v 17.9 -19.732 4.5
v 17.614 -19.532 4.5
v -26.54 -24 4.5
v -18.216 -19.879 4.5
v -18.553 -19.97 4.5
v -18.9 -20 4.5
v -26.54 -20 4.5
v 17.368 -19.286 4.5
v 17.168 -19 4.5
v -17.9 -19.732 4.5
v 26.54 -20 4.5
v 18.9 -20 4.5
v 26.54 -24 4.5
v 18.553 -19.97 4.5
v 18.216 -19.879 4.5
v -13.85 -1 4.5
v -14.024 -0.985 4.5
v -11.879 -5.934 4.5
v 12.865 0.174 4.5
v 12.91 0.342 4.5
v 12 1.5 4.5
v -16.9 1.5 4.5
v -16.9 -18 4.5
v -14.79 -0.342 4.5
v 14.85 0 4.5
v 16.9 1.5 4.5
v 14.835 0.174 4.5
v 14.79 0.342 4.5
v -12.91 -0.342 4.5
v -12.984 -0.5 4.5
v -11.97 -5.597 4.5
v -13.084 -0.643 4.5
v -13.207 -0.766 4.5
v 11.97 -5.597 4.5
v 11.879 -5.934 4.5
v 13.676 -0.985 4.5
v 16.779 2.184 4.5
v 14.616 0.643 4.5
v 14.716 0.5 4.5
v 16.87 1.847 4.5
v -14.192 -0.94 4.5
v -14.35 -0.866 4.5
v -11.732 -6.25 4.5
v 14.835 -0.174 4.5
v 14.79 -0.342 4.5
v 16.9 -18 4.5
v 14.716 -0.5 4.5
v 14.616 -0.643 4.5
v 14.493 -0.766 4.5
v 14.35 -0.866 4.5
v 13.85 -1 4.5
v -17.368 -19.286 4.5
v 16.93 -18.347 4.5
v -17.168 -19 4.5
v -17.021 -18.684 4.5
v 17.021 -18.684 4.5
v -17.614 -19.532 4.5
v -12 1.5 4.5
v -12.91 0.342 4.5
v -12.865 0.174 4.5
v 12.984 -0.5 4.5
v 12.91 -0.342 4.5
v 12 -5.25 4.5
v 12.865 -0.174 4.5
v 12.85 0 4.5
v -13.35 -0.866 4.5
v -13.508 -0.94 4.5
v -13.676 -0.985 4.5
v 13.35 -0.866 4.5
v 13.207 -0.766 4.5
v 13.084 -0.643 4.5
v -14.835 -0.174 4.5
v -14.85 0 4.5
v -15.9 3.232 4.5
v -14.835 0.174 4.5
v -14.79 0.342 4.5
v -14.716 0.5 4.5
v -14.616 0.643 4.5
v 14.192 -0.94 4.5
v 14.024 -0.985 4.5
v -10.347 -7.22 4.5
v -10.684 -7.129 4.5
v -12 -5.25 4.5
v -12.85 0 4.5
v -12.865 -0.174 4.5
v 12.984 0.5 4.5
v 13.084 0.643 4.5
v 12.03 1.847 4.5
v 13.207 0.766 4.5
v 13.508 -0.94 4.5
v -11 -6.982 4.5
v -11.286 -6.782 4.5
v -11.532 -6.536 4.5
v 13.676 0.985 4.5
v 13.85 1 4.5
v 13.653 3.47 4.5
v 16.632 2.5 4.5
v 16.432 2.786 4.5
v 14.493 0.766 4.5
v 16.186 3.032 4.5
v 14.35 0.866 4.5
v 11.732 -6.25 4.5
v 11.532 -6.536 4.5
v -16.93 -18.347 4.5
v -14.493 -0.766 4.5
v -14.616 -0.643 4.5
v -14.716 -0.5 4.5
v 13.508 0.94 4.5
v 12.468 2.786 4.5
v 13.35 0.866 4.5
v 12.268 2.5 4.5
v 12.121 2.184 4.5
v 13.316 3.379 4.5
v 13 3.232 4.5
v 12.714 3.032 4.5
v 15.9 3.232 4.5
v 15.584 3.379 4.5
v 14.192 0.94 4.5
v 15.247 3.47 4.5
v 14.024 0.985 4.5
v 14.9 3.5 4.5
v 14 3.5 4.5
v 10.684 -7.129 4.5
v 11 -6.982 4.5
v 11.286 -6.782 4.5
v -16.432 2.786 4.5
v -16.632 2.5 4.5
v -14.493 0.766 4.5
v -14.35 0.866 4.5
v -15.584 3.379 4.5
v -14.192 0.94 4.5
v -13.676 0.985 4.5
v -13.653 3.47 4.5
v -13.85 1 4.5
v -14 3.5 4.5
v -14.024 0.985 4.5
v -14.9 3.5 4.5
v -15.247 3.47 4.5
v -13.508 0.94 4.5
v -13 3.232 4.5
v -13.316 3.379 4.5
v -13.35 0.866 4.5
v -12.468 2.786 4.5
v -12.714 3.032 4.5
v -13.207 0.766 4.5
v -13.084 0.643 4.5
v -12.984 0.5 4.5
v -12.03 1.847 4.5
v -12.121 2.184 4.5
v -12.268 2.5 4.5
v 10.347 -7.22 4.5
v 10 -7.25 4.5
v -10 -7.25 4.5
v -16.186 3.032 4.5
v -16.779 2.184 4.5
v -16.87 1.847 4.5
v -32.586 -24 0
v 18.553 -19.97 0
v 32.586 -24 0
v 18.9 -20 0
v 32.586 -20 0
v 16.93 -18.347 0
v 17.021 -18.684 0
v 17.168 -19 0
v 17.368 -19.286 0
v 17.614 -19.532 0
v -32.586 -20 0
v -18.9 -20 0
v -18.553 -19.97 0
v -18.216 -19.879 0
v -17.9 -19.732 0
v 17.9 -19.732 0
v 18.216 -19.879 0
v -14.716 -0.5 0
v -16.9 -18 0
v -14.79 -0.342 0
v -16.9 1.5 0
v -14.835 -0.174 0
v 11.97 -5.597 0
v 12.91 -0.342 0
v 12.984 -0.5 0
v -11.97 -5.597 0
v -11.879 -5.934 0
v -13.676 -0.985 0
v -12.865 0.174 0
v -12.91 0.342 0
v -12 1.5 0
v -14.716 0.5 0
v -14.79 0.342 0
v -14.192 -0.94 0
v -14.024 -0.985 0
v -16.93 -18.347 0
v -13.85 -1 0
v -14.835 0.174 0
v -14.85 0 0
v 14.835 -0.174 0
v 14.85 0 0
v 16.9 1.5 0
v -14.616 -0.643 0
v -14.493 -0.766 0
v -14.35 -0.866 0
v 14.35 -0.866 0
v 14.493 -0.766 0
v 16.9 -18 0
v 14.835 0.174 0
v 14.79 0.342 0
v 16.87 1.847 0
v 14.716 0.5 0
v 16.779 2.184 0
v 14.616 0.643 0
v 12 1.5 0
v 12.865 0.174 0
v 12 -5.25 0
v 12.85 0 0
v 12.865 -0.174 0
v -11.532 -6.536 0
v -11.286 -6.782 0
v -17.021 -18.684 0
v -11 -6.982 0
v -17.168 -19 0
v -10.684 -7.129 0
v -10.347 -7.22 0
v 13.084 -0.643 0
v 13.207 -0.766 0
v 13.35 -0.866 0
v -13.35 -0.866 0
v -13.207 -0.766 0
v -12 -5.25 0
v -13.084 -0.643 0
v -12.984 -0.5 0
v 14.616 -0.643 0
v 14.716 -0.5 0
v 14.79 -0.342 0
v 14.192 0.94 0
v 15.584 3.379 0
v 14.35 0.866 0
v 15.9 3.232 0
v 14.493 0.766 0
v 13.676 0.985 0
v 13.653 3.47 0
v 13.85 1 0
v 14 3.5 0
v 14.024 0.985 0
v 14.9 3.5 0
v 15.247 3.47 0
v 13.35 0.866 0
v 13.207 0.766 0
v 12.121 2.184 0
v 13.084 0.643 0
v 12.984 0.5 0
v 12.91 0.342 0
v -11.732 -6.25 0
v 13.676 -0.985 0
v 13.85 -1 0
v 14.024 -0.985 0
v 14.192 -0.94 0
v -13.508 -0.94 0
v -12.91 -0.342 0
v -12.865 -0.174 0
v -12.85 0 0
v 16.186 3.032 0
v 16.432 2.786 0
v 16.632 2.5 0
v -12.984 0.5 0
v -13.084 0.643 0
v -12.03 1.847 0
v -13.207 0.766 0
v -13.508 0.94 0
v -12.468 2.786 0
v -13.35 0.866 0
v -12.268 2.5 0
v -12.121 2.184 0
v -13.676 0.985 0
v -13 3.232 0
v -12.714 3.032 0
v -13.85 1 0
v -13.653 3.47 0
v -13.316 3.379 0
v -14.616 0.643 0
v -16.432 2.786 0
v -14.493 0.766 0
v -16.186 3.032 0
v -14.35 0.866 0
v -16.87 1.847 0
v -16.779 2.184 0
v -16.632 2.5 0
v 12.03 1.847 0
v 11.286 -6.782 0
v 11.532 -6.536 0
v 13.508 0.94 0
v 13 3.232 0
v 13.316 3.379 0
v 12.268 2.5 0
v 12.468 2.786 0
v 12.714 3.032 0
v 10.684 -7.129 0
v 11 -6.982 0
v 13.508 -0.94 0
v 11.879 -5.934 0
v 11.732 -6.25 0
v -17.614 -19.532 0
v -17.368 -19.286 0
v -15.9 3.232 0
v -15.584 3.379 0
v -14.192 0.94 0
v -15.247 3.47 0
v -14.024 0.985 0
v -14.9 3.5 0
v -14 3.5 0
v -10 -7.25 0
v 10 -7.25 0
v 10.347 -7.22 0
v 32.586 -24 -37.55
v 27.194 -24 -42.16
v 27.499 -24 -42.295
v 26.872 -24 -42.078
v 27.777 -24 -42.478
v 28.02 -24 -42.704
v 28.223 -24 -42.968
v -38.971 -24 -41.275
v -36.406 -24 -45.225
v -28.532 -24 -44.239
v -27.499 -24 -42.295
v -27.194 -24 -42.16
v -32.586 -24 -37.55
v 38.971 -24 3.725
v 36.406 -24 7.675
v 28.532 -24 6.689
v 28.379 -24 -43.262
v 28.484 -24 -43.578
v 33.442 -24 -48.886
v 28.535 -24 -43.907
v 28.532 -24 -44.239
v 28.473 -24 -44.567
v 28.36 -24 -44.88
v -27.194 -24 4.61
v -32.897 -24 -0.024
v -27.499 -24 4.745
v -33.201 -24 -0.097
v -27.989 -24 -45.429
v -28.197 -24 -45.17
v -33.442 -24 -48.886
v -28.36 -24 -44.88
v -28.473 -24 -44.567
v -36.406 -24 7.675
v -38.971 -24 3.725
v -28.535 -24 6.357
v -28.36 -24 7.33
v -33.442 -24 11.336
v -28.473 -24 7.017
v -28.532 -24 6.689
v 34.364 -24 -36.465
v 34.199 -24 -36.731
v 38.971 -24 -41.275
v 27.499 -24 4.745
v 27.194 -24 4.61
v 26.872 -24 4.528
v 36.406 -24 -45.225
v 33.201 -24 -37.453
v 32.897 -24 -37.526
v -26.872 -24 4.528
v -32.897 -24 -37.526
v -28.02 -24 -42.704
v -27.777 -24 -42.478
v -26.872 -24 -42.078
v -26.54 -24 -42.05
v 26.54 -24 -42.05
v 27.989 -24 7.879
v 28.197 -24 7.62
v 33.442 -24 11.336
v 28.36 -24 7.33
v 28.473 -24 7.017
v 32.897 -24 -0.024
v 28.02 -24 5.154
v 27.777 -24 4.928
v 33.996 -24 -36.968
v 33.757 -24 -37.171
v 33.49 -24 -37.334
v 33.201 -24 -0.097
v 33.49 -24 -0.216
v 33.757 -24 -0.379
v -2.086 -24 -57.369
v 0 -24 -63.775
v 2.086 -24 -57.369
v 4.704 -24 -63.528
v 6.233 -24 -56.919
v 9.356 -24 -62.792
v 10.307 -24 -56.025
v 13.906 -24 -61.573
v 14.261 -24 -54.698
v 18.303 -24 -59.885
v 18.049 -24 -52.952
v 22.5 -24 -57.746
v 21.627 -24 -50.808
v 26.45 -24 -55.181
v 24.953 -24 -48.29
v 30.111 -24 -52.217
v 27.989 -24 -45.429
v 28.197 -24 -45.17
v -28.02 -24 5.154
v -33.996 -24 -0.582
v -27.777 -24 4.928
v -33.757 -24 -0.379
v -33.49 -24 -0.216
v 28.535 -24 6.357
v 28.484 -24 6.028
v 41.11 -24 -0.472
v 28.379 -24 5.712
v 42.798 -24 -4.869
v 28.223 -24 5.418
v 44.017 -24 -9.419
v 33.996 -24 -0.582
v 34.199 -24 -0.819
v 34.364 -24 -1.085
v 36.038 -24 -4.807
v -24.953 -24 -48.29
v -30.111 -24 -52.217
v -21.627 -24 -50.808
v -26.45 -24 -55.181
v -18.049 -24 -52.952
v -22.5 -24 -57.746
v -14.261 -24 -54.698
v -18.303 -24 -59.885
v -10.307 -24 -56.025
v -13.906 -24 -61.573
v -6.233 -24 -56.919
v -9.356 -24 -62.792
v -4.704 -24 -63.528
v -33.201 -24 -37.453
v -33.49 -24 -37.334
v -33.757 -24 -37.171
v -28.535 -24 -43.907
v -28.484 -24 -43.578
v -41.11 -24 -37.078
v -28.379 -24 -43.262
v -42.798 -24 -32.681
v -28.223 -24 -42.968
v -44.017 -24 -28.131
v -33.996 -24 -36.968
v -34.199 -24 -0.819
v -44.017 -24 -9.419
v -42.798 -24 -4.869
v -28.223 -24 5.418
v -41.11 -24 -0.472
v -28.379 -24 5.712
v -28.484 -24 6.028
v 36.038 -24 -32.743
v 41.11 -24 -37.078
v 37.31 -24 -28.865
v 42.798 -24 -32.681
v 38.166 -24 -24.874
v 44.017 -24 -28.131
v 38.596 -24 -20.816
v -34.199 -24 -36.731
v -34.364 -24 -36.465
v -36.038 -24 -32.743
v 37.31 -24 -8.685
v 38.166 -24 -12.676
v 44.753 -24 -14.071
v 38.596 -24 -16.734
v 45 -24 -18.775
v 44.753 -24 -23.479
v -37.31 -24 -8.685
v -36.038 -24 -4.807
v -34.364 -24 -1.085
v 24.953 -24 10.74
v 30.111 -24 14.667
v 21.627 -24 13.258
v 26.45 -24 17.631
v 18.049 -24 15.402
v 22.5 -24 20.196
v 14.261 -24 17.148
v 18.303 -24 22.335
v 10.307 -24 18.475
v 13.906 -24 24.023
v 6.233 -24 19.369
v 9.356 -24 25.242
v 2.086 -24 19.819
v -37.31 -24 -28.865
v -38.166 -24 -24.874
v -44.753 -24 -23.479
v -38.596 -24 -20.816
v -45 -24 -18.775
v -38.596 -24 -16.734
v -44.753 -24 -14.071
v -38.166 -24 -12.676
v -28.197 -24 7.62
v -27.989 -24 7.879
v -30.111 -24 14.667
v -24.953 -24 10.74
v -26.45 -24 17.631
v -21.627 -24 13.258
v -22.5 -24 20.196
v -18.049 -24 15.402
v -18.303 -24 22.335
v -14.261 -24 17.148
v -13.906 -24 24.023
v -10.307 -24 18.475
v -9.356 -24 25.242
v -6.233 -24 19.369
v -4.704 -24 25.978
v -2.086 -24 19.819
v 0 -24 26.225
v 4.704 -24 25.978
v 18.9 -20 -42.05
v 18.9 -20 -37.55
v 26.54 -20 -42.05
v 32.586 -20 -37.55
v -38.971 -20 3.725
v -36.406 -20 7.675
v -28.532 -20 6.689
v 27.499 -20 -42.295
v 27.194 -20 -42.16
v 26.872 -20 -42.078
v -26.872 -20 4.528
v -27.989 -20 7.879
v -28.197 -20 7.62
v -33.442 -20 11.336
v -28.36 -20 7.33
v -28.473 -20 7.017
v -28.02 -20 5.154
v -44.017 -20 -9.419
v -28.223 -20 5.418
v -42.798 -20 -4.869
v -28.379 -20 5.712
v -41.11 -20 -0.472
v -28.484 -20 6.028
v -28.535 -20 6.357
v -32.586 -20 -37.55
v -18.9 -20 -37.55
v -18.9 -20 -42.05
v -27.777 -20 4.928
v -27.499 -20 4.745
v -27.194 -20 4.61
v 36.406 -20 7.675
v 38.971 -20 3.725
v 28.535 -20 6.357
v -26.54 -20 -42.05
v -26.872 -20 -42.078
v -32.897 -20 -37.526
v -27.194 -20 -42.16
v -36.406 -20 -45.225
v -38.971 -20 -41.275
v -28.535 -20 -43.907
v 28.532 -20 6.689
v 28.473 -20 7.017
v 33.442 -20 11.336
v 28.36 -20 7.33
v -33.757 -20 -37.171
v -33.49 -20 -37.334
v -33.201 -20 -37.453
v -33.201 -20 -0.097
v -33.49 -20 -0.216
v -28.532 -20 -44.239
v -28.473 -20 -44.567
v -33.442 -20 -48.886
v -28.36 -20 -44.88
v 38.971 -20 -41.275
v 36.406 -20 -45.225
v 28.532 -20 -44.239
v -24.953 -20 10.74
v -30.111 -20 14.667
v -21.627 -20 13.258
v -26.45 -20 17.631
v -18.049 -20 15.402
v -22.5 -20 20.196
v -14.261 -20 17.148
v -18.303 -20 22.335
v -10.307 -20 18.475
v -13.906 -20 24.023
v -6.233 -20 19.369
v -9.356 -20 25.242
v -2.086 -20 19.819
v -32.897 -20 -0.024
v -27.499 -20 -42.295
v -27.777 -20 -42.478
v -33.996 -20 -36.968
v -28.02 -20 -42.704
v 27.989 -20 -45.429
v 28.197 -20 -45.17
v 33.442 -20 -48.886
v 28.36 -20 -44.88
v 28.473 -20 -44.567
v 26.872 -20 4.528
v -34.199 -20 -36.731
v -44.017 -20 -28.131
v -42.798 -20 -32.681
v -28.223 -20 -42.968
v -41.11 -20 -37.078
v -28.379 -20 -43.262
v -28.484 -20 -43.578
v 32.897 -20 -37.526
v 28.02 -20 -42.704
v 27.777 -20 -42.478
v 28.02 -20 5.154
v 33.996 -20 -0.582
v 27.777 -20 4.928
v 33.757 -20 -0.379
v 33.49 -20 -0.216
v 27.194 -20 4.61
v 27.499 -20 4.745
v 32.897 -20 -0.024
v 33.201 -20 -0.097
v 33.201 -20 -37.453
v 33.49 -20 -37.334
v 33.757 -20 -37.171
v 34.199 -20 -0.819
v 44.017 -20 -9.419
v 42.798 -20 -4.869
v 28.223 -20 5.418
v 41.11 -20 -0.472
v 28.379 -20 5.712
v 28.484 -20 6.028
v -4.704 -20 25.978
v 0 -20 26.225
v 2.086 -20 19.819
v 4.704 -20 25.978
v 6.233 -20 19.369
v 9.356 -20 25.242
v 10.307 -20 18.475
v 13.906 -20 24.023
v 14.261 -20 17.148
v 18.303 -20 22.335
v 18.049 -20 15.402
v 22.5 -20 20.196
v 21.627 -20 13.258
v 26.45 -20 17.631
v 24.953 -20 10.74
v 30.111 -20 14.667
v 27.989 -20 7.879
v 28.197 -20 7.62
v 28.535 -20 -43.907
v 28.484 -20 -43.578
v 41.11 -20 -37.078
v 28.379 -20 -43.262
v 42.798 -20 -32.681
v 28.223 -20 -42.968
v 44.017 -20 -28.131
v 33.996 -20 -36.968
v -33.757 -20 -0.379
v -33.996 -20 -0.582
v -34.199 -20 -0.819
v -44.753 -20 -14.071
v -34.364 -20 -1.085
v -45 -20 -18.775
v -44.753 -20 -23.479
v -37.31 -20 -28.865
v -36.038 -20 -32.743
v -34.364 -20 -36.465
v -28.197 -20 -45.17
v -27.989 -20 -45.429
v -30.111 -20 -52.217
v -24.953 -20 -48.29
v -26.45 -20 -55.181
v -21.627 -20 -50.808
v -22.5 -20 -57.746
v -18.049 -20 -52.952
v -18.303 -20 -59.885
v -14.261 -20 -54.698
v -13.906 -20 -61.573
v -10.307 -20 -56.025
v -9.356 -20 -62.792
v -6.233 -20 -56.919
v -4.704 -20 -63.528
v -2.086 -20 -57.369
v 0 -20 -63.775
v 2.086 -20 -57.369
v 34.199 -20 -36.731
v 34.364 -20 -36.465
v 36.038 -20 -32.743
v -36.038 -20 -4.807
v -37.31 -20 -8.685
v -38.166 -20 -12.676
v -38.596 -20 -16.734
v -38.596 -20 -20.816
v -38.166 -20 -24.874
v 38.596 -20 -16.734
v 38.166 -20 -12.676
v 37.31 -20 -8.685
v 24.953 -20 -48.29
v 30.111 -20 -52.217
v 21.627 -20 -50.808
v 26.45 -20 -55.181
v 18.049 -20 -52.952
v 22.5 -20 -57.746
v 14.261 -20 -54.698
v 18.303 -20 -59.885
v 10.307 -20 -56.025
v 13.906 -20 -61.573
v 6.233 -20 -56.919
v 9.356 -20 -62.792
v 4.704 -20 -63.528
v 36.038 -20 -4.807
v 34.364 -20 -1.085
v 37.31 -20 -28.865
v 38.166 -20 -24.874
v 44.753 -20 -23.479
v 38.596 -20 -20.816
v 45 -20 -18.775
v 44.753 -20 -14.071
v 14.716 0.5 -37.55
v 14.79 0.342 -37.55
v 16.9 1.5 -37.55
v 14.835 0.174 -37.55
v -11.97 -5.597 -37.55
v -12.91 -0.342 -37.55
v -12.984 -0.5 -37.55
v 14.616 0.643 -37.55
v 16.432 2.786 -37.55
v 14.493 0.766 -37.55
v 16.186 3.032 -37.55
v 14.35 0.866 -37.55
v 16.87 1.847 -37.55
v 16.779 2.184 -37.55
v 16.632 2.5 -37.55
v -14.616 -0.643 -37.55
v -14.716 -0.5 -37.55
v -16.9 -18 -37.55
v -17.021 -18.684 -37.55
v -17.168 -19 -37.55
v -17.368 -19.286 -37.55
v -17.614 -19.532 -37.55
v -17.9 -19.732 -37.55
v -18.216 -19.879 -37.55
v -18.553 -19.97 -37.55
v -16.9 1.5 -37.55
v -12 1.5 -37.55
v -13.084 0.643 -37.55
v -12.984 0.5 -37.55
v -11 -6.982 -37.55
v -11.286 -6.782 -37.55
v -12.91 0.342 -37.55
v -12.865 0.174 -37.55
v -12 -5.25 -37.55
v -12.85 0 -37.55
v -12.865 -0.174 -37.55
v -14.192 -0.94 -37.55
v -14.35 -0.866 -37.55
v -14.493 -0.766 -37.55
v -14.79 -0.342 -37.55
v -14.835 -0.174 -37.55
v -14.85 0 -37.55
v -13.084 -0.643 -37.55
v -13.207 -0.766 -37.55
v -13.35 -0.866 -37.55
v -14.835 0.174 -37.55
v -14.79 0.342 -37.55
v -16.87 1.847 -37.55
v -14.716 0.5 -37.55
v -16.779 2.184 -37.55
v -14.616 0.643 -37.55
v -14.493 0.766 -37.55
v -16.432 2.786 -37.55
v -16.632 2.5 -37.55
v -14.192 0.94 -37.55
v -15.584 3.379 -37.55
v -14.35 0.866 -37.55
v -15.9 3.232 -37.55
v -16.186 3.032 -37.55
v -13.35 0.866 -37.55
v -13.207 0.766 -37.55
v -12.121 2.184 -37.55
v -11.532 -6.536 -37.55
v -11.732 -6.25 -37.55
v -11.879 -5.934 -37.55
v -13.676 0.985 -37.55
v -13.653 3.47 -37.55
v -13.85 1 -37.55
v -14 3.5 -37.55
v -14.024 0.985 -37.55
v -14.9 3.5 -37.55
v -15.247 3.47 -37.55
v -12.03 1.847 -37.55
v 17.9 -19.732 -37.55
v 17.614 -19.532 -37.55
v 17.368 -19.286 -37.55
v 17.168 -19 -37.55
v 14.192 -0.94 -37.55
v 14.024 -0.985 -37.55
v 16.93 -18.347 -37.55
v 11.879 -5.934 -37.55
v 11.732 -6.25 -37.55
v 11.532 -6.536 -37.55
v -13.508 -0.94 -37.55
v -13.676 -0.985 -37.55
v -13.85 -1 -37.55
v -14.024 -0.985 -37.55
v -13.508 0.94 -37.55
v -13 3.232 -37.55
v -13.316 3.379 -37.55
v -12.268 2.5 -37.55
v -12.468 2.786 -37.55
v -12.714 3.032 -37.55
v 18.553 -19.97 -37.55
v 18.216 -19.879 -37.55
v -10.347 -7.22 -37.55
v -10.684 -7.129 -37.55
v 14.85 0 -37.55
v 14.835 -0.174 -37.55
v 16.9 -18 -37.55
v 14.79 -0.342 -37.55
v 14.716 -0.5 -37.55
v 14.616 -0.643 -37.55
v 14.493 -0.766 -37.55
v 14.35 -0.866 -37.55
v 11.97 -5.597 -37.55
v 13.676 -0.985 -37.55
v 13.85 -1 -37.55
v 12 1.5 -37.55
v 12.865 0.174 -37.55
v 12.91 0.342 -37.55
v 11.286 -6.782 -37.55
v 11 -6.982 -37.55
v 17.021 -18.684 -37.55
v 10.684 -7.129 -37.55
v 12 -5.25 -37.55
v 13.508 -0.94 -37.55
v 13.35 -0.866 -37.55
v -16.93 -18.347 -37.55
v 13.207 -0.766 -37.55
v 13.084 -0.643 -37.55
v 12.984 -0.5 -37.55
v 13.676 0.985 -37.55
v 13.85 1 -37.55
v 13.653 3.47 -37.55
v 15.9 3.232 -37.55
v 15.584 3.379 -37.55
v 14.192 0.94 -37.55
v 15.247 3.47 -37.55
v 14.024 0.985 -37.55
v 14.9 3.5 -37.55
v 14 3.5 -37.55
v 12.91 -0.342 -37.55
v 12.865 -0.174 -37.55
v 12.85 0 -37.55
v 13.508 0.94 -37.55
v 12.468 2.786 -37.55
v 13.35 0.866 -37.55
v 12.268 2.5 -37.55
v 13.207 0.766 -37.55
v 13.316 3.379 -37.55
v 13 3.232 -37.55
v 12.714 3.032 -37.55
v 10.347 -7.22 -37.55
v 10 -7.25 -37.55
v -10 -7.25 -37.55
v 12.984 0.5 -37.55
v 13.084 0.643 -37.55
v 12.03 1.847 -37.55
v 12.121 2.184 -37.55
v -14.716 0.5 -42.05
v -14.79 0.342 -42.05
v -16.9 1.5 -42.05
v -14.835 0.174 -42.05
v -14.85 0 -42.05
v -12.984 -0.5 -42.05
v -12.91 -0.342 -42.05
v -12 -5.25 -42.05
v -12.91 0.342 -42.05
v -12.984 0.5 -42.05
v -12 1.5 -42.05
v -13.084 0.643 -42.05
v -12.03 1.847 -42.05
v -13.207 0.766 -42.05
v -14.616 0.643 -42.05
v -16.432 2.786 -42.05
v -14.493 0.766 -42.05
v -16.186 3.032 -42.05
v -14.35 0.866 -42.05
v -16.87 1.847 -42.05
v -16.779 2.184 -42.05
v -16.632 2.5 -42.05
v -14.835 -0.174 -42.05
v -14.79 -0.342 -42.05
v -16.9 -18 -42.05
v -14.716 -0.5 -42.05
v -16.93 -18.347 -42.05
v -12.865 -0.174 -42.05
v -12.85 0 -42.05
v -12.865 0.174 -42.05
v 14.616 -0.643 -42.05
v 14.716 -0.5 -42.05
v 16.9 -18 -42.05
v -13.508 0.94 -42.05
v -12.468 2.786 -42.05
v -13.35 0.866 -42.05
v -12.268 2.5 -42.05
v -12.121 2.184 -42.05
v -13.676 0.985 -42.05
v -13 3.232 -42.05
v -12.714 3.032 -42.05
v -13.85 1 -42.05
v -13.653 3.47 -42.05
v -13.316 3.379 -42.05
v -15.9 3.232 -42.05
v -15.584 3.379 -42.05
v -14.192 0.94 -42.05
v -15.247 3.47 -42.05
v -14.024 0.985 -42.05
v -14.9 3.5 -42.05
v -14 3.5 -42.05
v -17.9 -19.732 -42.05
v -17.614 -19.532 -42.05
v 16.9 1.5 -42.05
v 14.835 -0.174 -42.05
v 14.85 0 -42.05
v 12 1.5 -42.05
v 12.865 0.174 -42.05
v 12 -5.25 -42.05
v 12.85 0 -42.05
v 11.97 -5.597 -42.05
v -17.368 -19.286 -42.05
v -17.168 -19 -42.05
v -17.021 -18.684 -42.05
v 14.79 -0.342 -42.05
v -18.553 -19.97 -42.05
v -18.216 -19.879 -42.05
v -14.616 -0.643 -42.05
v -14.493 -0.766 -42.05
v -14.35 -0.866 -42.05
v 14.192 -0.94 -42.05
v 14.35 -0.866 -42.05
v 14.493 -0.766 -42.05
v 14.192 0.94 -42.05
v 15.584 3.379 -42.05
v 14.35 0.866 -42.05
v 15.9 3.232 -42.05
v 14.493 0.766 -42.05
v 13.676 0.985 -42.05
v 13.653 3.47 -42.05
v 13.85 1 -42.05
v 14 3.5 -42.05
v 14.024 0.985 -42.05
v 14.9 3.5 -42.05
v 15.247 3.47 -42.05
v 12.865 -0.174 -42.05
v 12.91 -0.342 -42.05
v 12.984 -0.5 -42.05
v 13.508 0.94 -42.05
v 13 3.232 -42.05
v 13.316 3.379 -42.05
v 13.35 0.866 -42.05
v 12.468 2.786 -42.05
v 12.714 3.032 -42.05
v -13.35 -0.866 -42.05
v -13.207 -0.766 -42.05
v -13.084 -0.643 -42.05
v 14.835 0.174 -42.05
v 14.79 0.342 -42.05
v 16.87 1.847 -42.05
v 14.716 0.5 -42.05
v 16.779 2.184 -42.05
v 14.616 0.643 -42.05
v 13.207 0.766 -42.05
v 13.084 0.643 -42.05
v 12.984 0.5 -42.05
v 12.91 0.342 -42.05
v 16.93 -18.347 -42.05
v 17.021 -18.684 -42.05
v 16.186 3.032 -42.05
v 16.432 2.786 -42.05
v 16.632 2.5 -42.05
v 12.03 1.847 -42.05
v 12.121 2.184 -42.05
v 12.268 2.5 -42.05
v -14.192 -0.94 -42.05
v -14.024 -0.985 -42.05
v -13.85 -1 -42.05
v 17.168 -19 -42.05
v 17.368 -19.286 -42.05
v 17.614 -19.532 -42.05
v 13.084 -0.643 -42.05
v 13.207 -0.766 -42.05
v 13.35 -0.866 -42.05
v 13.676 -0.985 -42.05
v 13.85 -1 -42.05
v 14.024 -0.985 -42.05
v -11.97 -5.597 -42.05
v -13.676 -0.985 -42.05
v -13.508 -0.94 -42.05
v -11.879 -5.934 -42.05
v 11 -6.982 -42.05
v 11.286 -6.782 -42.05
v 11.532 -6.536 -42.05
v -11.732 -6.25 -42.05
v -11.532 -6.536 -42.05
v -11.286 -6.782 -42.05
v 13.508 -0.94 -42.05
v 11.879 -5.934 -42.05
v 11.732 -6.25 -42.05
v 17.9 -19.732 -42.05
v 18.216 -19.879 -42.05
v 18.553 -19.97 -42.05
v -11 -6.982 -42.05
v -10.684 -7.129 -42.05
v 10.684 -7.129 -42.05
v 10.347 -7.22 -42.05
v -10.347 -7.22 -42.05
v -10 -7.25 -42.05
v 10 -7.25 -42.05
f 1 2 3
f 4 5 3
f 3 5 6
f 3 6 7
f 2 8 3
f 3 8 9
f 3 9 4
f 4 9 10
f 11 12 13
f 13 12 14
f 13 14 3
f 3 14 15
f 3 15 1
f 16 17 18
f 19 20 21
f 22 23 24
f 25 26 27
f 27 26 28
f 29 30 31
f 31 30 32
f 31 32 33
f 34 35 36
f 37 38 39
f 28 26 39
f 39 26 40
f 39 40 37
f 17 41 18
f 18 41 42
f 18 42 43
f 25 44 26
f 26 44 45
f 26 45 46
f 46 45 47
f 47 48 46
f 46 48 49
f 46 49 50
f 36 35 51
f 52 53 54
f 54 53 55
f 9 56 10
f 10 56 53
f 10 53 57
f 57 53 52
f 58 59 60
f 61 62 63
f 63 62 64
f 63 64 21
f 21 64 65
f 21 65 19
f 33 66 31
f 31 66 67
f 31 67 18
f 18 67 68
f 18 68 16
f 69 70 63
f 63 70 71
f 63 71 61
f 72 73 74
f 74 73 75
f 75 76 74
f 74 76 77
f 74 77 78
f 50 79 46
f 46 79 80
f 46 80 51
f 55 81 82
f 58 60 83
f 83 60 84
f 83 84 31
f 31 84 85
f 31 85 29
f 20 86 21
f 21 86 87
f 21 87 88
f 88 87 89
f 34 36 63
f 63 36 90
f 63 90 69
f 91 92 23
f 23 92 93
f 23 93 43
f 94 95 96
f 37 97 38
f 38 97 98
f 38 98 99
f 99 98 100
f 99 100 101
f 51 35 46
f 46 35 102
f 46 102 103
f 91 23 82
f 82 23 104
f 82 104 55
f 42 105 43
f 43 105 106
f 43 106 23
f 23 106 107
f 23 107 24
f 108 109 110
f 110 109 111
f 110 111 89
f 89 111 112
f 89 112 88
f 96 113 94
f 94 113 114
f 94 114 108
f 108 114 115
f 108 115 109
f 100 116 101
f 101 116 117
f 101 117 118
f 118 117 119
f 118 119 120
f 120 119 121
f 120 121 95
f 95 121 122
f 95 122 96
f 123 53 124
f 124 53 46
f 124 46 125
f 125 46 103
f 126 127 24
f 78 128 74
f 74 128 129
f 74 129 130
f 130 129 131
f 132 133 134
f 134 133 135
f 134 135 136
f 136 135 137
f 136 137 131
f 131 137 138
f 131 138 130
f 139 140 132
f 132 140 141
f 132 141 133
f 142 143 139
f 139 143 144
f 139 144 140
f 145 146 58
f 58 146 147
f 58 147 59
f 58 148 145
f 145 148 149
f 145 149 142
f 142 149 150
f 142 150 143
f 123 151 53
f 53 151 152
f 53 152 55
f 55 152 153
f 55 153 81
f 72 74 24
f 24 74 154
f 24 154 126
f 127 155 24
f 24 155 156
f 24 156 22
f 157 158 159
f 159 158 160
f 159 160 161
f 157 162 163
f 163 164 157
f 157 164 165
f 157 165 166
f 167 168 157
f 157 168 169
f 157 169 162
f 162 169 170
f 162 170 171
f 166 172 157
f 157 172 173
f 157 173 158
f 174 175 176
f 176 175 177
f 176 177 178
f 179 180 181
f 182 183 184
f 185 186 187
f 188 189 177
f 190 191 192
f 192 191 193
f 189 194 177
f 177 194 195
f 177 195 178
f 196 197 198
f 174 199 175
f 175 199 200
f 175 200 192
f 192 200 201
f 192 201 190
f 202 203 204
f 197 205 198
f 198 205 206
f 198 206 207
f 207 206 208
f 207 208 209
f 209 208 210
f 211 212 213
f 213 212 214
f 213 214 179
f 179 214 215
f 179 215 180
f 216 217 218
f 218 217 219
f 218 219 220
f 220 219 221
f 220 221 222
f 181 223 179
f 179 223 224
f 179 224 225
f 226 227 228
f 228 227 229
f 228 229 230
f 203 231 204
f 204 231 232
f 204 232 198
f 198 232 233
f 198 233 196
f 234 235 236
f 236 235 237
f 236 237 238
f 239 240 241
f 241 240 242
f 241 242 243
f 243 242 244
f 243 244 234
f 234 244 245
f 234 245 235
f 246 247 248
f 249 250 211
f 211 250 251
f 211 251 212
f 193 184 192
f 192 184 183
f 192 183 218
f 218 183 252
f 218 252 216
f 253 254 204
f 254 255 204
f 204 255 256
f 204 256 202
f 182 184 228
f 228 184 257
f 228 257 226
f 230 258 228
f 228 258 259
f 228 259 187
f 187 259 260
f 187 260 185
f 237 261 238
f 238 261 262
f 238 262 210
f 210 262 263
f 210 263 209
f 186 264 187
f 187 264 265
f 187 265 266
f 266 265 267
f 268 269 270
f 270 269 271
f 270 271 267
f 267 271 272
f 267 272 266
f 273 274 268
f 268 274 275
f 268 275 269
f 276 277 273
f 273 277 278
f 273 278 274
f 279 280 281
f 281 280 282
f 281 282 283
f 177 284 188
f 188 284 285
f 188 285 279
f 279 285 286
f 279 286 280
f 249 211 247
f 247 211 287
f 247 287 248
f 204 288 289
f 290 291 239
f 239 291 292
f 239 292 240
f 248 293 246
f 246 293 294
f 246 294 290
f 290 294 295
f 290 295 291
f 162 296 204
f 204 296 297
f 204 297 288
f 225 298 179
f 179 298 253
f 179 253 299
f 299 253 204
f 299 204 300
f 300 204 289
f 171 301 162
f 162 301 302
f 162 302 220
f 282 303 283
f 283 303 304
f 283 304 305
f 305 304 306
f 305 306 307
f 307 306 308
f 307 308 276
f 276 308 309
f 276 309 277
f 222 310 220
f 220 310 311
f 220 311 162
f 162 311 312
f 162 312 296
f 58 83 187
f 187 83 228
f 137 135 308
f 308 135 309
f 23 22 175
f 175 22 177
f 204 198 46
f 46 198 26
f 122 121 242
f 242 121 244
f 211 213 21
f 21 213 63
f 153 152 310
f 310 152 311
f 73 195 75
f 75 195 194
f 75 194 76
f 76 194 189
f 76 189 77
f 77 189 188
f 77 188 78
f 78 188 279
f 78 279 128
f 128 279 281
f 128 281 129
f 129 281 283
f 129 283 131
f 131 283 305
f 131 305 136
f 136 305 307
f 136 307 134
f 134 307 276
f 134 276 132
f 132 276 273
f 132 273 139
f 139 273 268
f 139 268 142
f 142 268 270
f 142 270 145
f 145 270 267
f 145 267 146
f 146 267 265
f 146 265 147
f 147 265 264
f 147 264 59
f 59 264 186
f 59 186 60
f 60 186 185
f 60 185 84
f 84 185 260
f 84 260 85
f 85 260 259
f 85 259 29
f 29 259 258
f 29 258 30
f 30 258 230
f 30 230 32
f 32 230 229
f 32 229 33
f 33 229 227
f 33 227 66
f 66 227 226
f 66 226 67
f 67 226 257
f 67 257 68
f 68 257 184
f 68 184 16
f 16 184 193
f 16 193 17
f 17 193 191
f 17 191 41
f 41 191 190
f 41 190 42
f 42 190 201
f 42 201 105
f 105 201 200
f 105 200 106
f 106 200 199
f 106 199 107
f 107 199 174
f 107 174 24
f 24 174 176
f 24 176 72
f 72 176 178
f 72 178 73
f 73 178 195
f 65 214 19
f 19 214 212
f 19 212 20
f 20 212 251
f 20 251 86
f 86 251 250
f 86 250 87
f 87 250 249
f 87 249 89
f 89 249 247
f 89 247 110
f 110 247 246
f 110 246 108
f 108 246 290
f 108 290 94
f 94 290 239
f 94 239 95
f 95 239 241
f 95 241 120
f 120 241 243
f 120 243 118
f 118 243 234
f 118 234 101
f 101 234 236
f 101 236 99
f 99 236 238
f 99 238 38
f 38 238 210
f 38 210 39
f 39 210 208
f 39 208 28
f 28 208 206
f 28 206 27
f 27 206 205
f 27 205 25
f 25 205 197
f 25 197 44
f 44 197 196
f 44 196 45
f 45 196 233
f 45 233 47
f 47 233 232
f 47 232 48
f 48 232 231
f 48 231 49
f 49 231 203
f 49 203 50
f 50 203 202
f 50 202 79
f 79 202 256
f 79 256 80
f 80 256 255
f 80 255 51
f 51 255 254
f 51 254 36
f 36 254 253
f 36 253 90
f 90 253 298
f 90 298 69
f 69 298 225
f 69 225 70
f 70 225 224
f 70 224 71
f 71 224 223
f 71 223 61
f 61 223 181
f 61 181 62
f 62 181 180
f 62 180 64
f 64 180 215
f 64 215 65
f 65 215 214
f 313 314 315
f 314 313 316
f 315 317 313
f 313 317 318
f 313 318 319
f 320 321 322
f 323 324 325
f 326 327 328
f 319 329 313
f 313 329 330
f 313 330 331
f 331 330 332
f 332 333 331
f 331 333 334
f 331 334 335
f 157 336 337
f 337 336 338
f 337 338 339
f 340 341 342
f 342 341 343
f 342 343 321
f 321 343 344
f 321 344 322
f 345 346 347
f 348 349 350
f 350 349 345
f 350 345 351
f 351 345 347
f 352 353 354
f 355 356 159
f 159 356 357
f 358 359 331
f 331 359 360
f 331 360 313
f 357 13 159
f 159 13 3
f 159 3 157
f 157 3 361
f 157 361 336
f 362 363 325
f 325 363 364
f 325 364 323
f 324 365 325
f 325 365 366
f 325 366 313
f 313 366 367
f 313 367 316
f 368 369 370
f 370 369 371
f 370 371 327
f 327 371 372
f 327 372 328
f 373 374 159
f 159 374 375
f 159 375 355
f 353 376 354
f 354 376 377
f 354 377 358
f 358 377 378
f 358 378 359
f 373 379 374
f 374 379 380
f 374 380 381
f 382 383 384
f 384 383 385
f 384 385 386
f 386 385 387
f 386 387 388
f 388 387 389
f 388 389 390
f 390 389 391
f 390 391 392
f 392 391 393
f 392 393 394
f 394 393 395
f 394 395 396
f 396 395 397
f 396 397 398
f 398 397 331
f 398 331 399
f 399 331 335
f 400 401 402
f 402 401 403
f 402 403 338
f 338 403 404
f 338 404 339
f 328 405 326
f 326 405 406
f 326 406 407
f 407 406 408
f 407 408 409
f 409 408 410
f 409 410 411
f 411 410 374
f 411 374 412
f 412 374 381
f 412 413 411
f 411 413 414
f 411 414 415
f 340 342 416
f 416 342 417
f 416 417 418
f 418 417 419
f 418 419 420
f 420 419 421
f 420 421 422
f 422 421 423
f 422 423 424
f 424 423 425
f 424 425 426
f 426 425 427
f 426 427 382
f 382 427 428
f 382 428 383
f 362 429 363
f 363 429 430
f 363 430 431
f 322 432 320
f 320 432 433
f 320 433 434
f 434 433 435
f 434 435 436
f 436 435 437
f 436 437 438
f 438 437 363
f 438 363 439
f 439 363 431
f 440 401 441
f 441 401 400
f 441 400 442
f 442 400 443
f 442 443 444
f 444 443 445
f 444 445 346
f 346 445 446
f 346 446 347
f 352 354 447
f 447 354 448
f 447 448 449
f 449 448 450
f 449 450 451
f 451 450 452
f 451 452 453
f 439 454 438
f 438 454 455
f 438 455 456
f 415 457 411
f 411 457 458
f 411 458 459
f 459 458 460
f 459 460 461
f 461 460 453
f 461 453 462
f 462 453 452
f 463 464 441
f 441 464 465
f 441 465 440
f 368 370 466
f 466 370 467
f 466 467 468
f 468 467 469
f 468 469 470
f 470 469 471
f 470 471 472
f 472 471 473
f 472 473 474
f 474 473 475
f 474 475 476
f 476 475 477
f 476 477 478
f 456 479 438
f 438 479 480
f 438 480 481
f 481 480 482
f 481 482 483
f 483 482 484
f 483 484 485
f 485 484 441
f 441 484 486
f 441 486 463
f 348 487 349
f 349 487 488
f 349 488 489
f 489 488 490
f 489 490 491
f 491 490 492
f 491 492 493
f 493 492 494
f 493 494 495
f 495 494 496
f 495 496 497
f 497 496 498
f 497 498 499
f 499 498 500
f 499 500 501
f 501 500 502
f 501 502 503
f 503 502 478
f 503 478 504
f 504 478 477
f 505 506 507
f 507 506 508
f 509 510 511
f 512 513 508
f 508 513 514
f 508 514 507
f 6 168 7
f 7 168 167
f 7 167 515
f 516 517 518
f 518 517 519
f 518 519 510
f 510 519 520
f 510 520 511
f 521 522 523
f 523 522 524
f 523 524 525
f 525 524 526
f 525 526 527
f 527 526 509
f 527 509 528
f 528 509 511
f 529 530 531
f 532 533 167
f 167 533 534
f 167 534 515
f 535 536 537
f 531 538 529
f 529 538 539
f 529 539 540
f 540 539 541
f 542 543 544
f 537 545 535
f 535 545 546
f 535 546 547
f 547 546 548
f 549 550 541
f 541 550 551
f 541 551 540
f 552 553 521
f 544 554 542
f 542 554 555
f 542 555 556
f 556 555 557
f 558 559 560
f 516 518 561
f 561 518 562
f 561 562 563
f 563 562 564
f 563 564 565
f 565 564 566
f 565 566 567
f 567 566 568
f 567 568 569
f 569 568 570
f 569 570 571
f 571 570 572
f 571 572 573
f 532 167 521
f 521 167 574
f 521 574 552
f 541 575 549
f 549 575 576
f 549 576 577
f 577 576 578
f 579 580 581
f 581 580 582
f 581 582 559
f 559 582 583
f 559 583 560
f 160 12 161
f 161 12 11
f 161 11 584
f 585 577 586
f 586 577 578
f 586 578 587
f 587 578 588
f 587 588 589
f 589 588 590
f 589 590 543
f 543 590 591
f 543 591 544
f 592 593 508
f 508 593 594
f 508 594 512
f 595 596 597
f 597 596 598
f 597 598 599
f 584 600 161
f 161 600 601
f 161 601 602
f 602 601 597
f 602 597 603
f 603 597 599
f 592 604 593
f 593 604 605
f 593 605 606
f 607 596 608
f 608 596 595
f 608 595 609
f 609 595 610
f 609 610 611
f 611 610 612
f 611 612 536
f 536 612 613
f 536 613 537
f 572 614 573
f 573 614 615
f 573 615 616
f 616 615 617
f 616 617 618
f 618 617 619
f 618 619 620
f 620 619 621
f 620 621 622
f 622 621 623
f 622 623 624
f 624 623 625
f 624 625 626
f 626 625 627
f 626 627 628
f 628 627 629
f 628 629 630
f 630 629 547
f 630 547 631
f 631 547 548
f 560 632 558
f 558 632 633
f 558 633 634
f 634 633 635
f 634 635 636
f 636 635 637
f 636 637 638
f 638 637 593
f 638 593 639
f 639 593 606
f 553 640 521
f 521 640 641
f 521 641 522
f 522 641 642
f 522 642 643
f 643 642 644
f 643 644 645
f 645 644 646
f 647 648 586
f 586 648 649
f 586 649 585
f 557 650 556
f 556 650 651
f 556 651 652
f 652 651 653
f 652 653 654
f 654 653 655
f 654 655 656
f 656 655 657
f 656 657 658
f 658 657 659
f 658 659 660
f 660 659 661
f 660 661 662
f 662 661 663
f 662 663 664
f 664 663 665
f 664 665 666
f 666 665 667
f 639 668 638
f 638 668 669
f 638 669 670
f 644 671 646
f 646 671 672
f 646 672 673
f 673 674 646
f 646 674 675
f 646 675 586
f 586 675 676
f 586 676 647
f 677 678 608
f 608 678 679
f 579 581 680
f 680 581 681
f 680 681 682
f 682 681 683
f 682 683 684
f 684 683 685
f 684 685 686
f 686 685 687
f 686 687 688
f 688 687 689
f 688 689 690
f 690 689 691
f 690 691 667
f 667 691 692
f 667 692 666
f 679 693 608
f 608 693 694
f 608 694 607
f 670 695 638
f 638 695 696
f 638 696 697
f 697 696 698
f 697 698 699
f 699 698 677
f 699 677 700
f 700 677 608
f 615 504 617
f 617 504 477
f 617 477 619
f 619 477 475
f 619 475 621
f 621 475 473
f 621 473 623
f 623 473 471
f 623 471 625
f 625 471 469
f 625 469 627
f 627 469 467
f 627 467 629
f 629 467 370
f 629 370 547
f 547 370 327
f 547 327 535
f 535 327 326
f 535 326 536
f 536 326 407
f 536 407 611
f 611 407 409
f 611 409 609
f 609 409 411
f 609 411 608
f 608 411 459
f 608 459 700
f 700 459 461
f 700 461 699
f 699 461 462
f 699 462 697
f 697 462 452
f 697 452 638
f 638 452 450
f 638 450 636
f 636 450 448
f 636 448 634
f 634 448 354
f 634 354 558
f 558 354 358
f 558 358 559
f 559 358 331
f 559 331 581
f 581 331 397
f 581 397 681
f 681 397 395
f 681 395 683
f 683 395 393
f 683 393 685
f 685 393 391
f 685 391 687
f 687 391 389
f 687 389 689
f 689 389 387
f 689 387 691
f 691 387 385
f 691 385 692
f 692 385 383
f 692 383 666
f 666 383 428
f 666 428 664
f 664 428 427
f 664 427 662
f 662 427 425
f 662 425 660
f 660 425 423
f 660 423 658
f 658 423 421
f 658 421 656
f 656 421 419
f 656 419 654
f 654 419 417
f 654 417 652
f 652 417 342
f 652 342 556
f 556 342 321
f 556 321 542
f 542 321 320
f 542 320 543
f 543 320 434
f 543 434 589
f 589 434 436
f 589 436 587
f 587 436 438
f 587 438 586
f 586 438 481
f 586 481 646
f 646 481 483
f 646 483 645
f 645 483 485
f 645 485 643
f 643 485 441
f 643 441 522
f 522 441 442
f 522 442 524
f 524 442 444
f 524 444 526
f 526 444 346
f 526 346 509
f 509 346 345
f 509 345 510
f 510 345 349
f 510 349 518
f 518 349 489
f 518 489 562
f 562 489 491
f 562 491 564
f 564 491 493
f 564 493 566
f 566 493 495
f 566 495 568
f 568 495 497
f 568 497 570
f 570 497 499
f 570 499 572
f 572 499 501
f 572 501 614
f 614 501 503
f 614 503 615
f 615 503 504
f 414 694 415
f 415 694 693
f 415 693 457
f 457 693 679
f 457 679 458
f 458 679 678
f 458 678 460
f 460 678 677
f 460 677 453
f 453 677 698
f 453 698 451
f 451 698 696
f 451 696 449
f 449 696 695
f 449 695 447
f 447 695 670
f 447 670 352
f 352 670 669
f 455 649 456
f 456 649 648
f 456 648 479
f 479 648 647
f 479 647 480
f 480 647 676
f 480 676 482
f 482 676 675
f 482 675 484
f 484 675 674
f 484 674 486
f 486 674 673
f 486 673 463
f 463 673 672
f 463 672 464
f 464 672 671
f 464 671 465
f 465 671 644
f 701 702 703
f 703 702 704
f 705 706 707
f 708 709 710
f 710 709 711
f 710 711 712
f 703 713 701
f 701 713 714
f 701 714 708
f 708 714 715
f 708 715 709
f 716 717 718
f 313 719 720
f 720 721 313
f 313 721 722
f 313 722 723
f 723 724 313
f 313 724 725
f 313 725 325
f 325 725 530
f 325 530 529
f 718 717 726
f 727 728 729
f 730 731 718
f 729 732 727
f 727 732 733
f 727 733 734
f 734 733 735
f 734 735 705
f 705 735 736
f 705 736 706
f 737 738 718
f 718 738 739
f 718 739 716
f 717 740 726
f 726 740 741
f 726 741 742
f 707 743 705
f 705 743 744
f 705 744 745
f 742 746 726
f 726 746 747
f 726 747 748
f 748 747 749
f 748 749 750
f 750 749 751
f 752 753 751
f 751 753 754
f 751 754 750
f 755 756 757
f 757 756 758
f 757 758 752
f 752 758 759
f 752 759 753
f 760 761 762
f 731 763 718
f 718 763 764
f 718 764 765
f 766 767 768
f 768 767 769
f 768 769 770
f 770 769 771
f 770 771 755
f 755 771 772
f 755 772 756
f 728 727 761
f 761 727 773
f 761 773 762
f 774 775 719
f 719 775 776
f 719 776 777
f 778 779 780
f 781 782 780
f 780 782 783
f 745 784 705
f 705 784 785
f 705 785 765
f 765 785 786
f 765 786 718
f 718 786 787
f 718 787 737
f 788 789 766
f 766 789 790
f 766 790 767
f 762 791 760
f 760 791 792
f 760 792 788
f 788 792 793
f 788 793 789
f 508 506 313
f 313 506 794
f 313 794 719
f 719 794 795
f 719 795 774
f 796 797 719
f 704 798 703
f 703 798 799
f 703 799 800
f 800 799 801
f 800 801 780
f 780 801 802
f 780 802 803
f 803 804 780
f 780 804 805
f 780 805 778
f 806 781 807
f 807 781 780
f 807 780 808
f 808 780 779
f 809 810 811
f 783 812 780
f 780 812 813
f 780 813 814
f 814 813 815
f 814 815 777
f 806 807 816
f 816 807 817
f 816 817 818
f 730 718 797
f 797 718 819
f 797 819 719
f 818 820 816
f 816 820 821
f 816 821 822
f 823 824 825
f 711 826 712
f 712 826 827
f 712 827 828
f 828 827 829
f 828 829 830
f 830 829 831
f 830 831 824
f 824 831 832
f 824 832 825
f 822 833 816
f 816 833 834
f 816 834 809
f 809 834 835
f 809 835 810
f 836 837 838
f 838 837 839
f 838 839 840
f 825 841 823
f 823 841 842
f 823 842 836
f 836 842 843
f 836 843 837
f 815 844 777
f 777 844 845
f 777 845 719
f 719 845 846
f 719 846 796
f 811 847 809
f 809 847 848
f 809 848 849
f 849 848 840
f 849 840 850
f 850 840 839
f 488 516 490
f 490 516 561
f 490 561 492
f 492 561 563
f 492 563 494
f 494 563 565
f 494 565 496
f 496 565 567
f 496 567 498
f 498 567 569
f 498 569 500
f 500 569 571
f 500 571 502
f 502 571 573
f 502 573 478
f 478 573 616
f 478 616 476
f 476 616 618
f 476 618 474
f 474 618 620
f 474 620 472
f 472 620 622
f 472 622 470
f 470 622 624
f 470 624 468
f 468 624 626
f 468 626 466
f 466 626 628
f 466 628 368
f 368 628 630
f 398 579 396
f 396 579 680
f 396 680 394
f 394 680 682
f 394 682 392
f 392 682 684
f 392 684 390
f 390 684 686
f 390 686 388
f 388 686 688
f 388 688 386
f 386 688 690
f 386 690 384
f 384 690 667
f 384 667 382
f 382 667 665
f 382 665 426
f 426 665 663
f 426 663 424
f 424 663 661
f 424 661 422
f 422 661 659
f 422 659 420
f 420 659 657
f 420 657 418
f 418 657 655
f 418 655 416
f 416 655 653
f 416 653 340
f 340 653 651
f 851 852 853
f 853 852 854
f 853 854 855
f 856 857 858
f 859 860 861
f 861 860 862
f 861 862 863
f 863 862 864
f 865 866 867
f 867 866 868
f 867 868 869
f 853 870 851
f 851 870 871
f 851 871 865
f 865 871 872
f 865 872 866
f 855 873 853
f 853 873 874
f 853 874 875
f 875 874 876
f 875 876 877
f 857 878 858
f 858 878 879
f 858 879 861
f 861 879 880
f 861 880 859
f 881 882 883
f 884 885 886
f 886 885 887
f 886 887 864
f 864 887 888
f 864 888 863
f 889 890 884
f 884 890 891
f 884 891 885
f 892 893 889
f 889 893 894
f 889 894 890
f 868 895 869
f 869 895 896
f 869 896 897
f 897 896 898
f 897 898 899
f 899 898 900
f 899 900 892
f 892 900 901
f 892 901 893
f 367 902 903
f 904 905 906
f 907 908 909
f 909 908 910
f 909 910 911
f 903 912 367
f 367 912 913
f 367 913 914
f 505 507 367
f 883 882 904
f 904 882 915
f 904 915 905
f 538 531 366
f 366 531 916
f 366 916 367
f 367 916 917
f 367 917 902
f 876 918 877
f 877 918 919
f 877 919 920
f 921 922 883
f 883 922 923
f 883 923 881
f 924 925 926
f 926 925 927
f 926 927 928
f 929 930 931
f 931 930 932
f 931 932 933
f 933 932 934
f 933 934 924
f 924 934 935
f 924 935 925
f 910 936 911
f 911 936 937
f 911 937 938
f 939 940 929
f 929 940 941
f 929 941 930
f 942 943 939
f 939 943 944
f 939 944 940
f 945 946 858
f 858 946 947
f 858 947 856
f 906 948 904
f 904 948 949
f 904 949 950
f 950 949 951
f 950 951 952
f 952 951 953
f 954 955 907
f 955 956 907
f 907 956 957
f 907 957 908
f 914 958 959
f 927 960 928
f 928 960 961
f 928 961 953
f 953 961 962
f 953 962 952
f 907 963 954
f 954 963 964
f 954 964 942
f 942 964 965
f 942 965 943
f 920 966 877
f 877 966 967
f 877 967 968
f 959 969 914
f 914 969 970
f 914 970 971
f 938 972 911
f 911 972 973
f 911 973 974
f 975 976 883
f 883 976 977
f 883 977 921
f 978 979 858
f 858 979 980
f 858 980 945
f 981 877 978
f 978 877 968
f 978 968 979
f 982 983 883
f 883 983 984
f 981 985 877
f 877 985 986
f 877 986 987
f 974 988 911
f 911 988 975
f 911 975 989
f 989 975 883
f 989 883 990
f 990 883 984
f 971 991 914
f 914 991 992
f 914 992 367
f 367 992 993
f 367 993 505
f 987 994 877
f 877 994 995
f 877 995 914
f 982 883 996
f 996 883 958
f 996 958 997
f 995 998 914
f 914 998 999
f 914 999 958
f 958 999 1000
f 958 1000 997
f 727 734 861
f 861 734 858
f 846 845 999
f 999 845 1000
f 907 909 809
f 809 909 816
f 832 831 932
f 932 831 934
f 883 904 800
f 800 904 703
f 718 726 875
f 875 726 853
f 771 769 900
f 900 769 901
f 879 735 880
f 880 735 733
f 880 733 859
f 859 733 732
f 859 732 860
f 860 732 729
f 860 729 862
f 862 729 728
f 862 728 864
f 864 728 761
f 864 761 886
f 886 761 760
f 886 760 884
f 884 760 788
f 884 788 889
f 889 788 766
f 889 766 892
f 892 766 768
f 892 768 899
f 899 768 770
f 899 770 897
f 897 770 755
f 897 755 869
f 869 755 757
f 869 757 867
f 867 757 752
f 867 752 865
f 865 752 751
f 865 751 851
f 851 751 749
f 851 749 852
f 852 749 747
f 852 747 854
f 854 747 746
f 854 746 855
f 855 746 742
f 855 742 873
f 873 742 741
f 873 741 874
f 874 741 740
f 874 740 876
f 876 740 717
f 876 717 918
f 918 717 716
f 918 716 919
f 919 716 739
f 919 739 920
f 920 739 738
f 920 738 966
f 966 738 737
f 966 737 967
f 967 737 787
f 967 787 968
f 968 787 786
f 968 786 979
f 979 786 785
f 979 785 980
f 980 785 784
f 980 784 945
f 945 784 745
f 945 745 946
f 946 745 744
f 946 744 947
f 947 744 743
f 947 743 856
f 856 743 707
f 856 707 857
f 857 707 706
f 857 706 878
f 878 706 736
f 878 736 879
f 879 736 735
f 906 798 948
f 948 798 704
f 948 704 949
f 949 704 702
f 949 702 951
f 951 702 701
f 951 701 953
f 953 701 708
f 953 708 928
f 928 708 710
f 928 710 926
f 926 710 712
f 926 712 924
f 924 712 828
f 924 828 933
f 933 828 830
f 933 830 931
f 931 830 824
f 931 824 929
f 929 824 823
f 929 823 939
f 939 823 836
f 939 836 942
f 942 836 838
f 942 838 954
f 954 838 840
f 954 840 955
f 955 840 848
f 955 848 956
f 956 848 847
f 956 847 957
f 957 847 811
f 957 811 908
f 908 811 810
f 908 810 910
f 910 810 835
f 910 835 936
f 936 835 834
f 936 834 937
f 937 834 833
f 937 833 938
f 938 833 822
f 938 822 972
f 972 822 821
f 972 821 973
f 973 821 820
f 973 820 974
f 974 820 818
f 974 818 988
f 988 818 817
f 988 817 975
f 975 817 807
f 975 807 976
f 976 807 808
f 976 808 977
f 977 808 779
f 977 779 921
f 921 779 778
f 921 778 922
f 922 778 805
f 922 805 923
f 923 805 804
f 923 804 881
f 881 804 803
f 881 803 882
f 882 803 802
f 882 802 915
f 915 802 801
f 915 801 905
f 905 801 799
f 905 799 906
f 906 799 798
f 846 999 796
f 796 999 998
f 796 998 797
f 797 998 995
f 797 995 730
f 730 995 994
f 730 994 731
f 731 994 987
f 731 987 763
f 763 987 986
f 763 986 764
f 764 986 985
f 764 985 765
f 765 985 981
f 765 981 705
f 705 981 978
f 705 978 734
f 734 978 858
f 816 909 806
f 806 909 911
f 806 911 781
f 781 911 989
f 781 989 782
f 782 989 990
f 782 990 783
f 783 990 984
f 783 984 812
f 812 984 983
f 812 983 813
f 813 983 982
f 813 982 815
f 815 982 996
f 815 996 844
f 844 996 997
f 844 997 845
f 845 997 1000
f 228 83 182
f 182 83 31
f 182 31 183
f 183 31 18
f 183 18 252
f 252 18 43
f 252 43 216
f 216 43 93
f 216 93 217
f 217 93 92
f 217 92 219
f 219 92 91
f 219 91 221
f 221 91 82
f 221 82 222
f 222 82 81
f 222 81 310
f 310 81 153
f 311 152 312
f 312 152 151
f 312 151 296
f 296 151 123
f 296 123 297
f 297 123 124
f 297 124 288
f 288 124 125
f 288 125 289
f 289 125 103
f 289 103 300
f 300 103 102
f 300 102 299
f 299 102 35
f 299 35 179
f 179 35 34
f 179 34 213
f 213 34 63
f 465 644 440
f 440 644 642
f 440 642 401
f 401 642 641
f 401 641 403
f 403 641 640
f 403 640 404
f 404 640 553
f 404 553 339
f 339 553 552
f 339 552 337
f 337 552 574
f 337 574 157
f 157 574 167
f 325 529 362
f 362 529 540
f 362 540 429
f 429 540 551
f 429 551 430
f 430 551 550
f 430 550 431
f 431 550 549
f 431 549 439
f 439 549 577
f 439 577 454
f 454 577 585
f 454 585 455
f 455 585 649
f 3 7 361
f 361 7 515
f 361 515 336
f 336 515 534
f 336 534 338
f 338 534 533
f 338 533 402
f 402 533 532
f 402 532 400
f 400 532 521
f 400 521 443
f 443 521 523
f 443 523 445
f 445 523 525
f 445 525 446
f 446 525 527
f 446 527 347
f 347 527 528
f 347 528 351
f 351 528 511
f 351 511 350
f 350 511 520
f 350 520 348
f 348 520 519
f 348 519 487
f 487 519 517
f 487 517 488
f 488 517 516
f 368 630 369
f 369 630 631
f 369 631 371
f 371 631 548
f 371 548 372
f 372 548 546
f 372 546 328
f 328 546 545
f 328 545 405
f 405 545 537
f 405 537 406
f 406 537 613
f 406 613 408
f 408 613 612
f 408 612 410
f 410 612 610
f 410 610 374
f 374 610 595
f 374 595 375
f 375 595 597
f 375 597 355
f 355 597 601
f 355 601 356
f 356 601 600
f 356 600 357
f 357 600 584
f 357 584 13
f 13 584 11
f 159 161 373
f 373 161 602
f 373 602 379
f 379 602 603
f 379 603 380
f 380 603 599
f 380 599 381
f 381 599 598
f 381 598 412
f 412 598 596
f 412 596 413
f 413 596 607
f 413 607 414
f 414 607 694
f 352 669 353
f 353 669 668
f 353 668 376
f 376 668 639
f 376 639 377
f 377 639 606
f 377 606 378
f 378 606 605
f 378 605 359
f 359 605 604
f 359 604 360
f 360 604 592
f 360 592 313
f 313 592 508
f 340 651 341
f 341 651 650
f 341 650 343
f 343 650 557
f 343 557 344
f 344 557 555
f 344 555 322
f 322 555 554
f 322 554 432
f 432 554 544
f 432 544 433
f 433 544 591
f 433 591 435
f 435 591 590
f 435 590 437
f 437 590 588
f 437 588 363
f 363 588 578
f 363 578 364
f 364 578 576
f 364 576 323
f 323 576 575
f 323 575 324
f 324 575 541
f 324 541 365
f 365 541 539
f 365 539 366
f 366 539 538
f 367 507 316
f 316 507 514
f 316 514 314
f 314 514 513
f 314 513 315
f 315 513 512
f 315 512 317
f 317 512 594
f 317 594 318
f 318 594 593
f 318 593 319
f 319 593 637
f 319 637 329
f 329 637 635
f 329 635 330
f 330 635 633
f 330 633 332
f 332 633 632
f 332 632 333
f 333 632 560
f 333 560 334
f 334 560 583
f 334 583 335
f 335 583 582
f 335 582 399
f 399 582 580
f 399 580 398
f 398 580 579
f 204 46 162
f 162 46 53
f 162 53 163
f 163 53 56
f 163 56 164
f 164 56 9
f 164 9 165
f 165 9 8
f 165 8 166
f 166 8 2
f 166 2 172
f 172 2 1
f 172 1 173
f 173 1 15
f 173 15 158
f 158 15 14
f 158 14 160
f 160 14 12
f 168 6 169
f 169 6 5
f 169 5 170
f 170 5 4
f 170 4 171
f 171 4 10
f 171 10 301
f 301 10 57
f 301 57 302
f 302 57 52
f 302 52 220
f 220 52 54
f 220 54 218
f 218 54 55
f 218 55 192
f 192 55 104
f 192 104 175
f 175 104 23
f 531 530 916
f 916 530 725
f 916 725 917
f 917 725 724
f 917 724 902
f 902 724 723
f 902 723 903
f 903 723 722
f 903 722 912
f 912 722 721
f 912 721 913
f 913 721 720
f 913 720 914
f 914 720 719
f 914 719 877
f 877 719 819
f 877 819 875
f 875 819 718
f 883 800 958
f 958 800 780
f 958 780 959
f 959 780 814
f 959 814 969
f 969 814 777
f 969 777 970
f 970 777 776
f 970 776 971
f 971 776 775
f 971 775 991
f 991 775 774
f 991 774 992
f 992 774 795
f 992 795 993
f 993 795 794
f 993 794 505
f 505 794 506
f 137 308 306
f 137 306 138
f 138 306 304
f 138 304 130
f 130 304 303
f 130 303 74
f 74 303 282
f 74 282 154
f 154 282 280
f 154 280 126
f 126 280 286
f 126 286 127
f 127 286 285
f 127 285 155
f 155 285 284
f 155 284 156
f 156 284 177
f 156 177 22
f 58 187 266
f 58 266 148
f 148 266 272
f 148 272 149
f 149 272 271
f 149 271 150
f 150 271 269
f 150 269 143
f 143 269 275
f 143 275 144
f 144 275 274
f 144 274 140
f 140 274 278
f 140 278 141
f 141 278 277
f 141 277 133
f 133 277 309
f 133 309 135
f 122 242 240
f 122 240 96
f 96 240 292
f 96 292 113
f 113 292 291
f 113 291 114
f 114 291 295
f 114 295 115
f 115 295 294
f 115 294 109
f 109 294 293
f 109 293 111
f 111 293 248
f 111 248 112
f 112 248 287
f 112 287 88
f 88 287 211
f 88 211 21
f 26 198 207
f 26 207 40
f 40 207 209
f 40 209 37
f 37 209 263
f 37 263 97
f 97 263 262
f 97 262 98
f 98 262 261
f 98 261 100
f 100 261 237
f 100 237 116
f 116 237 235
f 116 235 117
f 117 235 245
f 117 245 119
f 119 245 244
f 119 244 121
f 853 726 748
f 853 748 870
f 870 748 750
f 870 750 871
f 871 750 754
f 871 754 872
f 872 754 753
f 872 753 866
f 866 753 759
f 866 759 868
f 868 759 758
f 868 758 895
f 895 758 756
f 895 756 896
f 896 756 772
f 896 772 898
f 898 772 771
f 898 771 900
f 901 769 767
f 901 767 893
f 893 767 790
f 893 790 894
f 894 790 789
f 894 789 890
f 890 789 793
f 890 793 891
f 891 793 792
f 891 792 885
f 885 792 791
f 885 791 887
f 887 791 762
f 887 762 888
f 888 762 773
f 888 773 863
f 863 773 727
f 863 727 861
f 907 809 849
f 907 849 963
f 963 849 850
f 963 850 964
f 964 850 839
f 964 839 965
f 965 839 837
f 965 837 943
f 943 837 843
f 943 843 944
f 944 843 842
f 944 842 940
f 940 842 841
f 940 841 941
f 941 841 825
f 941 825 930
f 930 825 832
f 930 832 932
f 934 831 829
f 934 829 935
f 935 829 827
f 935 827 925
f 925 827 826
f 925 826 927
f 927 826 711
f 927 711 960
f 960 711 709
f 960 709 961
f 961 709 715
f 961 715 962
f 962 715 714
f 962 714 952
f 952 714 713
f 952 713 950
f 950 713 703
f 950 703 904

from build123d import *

# Parameters (mm, degrees)
SKETCH1_R           = 1
BOSS_EXTRUDE1_DEPTH = 4.5
SKETCH4_R           = 45
BOSS_EXTRUDE3_DEPTH = 4
FILLET2_R           = 2
FILLET3_R           = 2


with BuildPart() as part:
    # Sketch1 → Boss-Extrude1 (new body)
    with BuildSketch(Plane.XY):
        Polygon((12, 3.5), (16.9, 3.5), (16.9, -20), (-16.9, -20), (-16.9, 3.5), (-12, 3.5), (-12, -7.25), (12, -7.25), align=None)
        with Locations((13.85, 0)):
            Circle(SKETCH1_R, mode=Mode.SUBTRACT)
        with Locations((-13.85, 0)):
            Circle(SKETCH1_R, mode=Mode.SUBTRACT)
    boss_extrude1 = extrude(amount=BOSS_EXTRUDE1_DEPTH)

    # Sketch4 → Boss-Extrude3 (add)
    with BuildSketch(Plane(origin=(0, -20, 0), x_dir=(-1, 0, 0), z_dir=(0, -1, 0))):
        with Locations(Location((0, 18.775, 0), (0, 0, 90))):
            Circle(SKETCH4_R)
        with BuildLine():
            Line((-33.78345564, 0), (33.78345564, 0))
            ThreePointArc((33.78345564, 0), (38.65, 18.775), (33.78345564, 37.55))
            Line((33.78345564, 37.55), (-33.78345564, 37.55))
            ThreePointArc((-33.78345564, 37.55), (-38.65, 18.775), (-33.78345564, 0))
        make_face(mode=Mode.SUBTRACT)
        with BuildLine():
            Line((-30.85606707, -4.5), (30.85606707, -4.5))
            ThreePointArc((30.85606707, -4.5), (0, -19.875), (-30.85606707, -4.5))
        make_face(mode=Mode.SUBTRACT)
        with BuildLine():
            Line((-30.85606707, 42.05), (30.85606707, 42.05))
            ThreePointArc((30.85606707, 42.05), (0, 57.425), (-30.85606707, 42.05))
        make_face(mode=Mode.SUBTRACT)
    extrude(amount=BOSS_EXTRUDE3_DEPTH)

    # Mirror2: Boss-Extrude1 across plane
    add(boss_extrude1.mirror(Plane(origin=(0, 0, -18.775), x_dir=(1, 0, 0), z_dir=(0, 0, -1))))

    # Fillet2
    fillet2_edges = [part.edges().sort_by_distance(p)[0] for p in [
        (-12, -7.25, 2.25),
        (12, -7.25, 2.25),
        (33.78345564, -22, 0),
        (-33.78345564, -22, 0),
        (-33.78345564, -22, -37.55),
        (33.78345564, -22, -37.55),
        (-30.85606707, -22, 4.5),
        (30.85606707, -22, 4.5),
        (30.85606707, -22, -42.05),
        (-30.85606707, -22, -42.05),
        (-12, -7.25, -39.8),
        (12, -7.25, -39.8),
    ]]
    fillet(fillet2_edges, radius=FILLET2_R)

    # Fillet3
    fillet3_edges = [part.edges().sort_by_distance(p)[0] for p in [
        (12, 3.5, 2.25),
        (16.9, 3.5, 2.25),
        (16.9, -20, 2.25),
        (-16.9, -20, 2.25),
        (-16.9, 3.5, 2.25),
        (-12, 3.5, 2.25),
        (-12, 3.5, -39.8),
        (12, 3.5, -39.8),
        (16.9, 3.5, -39.8),
        (16.9, -20, -39.8),
        (-16.9, -20, -39.8),
        (-16.9, 3.5, -39.8),
    ]]
    fillet(fillet3_edges, radius=FILLET3_R)


solid = part.part
